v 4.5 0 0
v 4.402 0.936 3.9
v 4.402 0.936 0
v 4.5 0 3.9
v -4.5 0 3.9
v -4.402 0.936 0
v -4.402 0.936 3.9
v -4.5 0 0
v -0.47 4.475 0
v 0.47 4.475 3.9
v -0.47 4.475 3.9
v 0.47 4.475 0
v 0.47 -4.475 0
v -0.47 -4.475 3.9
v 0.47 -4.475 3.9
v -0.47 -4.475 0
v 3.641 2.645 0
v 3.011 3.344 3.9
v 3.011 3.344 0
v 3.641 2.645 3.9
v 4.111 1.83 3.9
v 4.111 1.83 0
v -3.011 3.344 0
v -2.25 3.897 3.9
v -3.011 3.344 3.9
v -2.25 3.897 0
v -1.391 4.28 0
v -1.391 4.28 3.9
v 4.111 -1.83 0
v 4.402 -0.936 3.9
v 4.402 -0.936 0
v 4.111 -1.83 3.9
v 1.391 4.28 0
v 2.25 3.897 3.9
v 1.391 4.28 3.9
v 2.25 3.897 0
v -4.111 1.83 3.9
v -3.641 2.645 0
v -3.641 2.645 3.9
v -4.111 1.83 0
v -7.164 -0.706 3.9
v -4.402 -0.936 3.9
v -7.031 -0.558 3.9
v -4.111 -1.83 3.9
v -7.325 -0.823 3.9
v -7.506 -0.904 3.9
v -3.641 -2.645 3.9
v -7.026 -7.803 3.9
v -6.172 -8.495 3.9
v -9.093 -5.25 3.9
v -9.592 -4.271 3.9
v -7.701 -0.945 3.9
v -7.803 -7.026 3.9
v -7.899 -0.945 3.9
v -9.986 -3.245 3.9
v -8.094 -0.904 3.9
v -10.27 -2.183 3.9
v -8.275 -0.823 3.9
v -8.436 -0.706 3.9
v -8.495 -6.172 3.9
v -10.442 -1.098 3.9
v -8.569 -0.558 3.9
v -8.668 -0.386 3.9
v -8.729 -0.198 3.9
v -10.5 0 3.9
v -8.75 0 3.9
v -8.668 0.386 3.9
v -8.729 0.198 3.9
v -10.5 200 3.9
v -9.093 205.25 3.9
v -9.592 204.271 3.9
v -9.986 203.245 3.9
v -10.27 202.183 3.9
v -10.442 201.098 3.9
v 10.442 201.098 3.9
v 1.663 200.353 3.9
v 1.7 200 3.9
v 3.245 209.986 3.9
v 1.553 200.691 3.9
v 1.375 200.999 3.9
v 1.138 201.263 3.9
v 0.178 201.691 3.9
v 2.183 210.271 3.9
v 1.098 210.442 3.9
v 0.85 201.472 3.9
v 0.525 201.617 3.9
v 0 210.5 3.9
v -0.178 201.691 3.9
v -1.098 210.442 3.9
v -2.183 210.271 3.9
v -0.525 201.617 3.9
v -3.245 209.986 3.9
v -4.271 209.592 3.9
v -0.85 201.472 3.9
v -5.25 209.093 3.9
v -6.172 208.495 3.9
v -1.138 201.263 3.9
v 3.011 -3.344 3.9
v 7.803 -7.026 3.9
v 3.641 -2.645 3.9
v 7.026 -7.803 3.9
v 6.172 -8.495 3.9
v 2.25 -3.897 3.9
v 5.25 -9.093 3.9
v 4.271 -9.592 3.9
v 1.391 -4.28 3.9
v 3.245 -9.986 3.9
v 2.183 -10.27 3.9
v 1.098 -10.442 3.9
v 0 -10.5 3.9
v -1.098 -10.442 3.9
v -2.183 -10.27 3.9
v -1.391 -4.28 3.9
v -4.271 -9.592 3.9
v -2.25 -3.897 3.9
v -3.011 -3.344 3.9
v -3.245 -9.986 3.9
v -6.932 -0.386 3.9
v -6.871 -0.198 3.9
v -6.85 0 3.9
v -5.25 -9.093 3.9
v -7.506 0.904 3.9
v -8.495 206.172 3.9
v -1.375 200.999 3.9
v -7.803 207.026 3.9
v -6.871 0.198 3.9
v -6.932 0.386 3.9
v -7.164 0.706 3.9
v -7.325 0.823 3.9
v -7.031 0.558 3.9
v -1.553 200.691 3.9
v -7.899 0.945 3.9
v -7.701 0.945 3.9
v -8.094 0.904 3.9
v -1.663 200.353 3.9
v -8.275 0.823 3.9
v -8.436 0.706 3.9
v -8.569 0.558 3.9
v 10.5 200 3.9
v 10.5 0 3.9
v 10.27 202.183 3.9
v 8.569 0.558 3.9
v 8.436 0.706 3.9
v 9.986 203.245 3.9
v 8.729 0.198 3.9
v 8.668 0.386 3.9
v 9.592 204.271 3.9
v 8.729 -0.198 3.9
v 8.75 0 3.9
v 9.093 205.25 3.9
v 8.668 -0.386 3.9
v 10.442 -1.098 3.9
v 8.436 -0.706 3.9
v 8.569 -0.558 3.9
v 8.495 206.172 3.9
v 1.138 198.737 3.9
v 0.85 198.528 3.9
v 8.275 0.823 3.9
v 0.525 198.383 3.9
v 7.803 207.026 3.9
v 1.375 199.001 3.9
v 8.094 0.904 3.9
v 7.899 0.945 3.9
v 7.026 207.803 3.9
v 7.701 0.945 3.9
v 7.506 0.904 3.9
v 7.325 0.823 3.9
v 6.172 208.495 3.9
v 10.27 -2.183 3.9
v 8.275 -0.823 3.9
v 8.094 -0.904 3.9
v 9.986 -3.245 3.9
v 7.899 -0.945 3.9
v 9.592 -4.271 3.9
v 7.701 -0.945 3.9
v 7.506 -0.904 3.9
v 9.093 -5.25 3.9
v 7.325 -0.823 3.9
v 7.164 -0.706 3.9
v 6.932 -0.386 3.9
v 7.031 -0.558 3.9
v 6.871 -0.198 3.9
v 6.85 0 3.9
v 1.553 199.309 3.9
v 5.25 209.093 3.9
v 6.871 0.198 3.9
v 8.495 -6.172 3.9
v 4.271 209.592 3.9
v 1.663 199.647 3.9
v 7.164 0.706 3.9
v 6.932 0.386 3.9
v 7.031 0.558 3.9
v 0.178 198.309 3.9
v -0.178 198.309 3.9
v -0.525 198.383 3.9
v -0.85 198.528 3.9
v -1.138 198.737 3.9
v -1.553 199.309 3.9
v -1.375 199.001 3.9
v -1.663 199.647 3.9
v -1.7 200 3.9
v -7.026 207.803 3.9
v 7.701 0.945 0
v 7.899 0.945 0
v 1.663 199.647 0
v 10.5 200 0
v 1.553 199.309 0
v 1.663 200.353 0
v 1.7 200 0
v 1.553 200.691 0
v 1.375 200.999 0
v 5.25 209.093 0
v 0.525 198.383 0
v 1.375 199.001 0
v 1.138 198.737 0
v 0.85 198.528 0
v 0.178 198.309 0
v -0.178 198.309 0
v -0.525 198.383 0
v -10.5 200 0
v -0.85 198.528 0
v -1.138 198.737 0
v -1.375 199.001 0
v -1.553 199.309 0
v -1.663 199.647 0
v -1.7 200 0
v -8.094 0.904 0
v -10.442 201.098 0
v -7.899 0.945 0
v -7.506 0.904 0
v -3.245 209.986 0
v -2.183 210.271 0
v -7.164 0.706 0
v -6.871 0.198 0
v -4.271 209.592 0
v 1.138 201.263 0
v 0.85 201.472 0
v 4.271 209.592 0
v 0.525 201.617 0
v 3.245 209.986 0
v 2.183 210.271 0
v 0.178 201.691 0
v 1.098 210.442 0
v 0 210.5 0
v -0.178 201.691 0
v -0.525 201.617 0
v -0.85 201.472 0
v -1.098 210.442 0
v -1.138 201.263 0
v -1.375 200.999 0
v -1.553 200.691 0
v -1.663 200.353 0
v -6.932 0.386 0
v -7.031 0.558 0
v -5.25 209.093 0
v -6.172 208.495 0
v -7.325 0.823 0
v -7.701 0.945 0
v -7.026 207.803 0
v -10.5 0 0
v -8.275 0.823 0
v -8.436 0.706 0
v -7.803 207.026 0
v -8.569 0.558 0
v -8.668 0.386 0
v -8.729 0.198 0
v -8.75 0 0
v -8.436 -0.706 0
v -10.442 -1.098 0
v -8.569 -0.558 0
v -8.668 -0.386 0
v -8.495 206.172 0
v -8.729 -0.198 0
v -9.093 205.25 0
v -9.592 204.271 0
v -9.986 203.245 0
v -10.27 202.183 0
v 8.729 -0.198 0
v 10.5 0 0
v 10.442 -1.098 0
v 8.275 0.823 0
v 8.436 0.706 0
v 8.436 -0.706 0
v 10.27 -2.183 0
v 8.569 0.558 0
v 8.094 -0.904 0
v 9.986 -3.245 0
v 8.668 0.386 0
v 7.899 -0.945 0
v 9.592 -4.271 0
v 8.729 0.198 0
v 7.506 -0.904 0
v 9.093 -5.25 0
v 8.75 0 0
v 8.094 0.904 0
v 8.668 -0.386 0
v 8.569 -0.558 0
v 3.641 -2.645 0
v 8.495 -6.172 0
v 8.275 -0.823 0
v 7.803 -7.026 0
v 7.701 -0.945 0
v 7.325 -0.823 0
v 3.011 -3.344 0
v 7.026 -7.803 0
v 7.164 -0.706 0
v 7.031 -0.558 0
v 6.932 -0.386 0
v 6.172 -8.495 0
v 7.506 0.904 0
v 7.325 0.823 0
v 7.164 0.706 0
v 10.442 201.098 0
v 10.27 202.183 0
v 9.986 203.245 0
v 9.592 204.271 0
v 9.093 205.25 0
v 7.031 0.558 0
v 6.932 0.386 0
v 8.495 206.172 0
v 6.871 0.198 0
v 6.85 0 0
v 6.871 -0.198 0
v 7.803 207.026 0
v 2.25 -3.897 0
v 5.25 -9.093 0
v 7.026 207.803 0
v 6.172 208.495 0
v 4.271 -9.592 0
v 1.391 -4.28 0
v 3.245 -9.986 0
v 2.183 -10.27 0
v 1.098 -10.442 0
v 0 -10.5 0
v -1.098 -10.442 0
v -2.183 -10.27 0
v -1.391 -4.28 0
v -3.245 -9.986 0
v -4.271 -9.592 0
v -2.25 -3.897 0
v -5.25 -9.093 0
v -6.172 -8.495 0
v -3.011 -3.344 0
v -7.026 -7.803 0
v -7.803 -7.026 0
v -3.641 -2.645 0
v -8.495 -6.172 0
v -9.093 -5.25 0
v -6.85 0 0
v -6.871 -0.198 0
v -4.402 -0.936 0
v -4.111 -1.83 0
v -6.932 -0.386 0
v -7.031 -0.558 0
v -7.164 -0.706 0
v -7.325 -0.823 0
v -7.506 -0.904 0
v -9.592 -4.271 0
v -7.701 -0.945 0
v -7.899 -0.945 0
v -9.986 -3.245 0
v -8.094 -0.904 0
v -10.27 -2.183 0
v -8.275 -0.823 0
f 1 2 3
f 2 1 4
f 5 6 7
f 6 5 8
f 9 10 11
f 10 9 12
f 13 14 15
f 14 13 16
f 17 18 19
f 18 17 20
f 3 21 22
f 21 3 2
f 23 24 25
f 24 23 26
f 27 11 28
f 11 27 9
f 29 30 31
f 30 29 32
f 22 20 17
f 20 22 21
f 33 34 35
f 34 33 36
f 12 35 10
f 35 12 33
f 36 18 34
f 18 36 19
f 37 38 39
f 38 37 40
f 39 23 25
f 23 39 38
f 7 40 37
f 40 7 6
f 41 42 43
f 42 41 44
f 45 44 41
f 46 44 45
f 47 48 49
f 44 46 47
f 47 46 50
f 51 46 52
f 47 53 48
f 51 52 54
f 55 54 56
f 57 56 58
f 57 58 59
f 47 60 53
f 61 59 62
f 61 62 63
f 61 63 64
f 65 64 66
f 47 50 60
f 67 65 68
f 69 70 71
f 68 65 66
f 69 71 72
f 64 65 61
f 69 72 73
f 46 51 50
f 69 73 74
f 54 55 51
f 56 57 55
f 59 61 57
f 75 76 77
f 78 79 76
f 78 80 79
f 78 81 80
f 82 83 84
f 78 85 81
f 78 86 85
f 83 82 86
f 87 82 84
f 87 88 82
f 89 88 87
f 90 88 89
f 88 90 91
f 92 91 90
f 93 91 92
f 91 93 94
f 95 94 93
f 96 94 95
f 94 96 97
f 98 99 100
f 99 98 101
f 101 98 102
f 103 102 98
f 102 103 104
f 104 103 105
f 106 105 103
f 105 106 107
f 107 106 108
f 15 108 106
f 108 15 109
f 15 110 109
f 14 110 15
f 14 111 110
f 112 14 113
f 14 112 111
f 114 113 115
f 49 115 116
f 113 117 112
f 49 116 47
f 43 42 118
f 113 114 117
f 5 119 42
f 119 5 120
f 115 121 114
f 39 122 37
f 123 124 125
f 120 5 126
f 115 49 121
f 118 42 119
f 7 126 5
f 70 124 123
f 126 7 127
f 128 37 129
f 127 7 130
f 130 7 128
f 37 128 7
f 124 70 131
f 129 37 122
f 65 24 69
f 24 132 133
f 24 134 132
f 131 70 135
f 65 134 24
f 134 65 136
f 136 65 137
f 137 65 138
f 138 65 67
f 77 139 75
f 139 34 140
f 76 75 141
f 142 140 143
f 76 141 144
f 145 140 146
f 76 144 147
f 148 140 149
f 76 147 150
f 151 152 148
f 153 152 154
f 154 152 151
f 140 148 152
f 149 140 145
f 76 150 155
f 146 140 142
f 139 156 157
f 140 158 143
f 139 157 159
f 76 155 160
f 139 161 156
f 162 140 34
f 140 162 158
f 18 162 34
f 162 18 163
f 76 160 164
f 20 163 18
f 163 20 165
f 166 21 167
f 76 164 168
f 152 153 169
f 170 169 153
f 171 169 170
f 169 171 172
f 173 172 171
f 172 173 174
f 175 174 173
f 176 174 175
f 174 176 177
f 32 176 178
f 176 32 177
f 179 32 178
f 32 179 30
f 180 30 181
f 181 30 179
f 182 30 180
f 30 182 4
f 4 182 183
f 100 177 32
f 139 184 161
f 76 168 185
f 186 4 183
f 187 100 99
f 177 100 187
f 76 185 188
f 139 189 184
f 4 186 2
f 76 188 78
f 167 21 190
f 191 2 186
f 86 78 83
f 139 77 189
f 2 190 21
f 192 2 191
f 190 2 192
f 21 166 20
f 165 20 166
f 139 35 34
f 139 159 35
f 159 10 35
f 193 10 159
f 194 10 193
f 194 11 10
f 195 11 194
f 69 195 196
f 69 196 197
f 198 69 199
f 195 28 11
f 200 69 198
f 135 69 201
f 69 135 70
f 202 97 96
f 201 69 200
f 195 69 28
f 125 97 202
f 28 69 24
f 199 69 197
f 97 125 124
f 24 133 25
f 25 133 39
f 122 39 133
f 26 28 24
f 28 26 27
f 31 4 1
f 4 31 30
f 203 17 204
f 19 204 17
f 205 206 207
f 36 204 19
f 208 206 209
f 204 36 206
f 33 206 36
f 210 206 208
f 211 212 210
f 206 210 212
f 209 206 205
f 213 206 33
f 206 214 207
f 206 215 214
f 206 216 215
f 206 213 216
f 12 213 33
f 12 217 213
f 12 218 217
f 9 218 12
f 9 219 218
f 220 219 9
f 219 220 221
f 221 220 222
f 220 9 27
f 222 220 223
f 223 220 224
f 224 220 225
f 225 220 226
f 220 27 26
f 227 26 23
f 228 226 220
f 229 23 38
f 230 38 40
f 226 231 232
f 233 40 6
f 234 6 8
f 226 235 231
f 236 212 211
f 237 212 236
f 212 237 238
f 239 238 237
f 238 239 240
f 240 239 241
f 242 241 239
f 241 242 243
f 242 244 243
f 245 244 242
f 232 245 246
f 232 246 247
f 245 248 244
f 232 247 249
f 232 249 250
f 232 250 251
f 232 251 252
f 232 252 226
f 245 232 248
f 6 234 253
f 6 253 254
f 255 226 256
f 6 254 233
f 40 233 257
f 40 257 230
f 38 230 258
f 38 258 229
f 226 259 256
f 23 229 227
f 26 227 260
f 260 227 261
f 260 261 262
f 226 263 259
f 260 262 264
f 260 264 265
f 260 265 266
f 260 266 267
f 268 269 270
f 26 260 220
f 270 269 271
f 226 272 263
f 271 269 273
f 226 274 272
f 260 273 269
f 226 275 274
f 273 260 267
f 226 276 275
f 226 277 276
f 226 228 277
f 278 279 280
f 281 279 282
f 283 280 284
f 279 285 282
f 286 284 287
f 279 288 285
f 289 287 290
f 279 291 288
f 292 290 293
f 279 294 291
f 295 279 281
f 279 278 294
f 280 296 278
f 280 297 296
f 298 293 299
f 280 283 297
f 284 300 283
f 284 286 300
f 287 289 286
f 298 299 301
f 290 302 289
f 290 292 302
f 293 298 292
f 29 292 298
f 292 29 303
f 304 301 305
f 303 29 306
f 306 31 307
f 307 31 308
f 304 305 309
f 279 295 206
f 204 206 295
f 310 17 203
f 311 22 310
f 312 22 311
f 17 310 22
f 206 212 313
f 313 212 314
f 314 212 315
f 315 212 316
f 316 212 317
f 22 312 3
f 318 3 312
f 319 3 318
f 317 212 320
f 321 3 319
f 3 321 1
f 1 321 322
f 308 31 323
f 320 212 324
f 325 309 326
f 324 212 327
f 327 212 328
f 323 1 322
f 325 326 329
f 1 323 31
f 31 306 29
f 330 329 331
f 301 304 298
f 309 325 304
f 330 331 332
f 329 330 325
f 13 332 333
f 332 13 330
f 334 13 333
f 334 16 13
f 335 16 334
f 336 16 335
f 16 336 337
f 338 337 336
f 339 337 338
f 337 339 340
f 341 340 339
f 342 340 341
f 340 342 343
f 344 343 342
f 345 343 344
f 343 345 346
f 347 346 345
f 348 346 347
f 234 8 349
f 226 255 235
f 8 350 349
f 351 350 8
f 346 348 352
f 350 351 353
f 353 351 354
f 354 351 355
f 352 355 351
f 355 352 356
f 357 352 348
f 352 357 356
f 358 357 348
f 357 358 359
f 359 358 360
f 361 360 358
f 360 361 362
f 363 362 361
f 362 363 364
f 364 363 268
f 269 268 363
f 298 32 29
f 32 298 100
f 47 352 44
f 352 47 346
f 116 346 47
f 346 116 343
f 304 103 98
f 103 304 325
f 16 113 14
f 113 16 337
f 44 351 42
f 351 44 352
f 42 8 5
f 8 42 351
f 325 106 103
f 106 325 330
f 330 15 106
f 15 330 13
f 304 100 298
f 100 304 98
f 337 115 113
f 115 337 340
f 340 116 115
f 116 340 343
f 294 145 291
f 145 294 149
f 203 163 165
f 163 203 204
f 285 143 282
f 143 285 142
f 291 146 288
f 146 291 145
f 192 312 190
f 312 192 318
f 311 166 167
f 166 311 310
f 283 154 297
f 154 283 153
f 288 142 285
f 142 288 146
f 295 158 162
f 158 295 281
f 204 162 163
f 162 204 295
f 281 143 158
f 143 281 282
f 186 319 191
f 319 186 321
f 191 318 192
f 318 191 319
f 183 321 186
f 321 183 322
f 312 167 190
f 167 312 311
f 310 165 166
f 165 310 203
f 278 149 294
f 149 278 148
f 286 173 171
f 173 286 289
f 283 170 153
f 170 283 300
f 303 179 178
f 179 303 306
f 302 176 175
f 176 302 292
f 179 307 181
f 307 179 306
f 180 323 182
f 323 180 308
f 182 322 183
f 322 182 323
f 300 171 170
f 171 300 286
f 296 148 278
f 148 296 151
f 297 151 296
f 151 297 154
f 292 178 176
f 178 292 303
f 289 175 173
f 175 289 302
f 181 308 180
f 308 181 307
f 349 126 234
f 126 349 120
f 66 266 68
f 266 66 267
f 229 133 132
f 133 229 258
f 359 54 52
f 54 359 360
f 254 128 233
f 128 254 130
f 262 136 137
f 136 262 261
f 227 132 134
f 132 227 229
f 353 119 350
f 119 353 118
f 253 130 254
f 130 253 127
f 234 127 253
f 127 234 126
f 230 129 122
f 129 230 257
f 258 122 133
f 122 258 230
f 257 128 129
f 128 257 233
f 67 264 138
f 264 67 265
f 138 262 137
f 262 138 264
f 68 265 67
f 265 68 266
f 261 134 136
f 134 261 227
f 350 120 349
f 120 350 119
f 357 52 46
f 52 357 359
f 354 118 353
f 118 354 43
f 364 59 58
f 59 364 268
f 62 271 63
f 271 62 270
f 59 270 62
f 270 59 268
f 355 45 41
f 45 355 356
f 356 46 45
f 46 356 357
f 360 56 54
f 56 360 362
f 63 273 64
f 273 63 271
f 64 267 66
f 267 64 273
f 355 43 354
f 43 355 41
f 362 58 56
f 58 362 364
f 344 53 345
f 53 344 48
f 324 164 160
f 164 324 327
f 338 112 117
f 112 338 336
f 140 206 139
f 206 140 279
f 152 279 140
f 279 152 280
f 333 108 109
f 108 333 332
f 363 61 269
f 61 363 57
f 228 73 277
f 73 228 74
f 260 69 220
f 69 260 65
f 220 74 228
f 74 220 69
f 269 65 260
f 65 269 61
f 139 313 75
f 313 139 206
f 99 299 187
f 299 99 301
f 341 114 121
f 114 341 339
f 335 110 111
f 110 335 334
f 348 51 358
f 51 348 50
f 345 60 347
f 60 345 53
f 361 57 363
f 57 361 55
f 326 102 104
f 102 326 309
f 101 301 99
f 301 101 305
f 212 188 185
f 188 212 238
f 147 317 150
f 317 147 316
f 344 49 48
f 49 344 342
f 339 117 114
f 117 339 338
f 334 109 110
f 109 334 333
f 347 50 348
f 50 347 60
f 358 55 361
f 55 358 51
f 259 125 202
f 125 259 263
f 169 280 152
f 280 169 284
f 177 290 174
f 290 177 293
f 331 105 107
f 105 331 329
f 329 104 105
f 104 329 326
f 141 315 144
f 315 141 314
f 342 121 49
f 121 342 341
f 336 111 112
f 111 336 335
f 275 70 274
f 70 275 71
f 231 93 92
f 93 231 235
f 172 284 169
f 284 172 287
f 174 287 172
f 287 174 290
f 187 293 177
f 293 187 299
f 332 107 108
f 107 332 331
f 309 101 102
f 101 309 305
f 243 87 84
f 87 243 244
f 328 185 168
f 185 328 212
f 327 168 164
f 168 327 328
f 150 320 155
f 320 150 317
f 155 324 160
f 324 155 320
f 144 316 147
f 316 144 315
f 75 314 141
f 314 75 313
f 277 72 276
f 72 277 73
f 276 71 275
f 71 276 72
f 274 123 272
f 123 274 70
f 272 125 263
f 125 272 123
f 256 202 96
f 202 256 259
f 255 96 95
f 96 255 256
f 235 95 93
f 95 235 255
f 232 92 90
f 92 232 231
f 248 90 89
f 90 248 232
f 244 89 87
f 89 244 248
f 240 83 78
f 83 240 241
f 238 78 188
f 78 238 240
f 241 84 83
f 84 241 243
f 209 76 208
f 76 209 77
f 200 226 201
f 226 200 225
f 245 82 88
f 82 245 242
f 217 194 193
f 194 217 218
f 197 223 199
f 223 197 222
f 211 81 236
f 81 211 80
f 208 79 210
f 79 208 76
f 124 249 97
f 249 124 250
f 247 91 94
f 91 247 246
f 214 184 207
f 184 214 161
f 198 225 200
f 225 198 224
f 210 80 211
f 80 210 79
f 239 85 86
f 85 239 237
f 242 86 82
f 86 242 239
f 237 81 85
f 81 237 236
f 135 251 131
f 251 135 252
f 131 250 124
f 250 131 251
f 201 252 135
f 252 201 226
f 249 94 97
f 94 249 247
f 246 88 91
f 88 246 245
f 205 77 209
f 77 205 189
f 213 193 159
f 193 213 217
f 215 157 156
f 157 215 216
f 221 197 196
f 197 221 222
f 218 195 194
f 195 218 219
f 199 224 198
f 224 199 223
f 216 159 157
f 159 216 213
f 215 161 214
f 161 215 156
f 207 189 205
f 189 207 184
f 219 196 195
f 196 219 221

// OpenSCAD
//general
$fn = 30;                  //convexity of general curved faces
thickness = 3.9;             //thickness of arm

//circular servo horn measurements
hornDiameter = 21;             //diameter of the circular horn
hornCenterHole = 9;          //diameter of the center hole (for screw)
hornOuterHoleDiameters = 1.9;  //diameter of the outer holes for screwing down horn
hornOuterHolesCenterDist = 7.8;//distance from center to the outer holes

//arm specific stuff
armLength = 200;//155;               //horn center to horn center distance for arm length

freeTurning3mm = 3.4;          //diameter of hole for free turning motion

module horn(){
   cylinder(d=hornCenterHole, h=thickness);
   translate([hornOuterHolesCenterDist, 0, 0])
   cylinder(d=hornOuterHoleDiameters, h=thickness);
   translate([-hornOuterHolesCenterDist, 0, 0])
   cylinder(d=hornOuterHoleDiameters, h=thickness);
}

difference(){
   hull(){
      cylinder(d=hornDiameter,h=thickness, $fn = 60);
      translate([0,armLength,0])
      cylinder(d=hornDiameter,h=thickness, $fn = 60);
   }
   horn();
   translate([0,armLength,0])
   cylinder(d=freeTurning3mm, h=thickness);
}
